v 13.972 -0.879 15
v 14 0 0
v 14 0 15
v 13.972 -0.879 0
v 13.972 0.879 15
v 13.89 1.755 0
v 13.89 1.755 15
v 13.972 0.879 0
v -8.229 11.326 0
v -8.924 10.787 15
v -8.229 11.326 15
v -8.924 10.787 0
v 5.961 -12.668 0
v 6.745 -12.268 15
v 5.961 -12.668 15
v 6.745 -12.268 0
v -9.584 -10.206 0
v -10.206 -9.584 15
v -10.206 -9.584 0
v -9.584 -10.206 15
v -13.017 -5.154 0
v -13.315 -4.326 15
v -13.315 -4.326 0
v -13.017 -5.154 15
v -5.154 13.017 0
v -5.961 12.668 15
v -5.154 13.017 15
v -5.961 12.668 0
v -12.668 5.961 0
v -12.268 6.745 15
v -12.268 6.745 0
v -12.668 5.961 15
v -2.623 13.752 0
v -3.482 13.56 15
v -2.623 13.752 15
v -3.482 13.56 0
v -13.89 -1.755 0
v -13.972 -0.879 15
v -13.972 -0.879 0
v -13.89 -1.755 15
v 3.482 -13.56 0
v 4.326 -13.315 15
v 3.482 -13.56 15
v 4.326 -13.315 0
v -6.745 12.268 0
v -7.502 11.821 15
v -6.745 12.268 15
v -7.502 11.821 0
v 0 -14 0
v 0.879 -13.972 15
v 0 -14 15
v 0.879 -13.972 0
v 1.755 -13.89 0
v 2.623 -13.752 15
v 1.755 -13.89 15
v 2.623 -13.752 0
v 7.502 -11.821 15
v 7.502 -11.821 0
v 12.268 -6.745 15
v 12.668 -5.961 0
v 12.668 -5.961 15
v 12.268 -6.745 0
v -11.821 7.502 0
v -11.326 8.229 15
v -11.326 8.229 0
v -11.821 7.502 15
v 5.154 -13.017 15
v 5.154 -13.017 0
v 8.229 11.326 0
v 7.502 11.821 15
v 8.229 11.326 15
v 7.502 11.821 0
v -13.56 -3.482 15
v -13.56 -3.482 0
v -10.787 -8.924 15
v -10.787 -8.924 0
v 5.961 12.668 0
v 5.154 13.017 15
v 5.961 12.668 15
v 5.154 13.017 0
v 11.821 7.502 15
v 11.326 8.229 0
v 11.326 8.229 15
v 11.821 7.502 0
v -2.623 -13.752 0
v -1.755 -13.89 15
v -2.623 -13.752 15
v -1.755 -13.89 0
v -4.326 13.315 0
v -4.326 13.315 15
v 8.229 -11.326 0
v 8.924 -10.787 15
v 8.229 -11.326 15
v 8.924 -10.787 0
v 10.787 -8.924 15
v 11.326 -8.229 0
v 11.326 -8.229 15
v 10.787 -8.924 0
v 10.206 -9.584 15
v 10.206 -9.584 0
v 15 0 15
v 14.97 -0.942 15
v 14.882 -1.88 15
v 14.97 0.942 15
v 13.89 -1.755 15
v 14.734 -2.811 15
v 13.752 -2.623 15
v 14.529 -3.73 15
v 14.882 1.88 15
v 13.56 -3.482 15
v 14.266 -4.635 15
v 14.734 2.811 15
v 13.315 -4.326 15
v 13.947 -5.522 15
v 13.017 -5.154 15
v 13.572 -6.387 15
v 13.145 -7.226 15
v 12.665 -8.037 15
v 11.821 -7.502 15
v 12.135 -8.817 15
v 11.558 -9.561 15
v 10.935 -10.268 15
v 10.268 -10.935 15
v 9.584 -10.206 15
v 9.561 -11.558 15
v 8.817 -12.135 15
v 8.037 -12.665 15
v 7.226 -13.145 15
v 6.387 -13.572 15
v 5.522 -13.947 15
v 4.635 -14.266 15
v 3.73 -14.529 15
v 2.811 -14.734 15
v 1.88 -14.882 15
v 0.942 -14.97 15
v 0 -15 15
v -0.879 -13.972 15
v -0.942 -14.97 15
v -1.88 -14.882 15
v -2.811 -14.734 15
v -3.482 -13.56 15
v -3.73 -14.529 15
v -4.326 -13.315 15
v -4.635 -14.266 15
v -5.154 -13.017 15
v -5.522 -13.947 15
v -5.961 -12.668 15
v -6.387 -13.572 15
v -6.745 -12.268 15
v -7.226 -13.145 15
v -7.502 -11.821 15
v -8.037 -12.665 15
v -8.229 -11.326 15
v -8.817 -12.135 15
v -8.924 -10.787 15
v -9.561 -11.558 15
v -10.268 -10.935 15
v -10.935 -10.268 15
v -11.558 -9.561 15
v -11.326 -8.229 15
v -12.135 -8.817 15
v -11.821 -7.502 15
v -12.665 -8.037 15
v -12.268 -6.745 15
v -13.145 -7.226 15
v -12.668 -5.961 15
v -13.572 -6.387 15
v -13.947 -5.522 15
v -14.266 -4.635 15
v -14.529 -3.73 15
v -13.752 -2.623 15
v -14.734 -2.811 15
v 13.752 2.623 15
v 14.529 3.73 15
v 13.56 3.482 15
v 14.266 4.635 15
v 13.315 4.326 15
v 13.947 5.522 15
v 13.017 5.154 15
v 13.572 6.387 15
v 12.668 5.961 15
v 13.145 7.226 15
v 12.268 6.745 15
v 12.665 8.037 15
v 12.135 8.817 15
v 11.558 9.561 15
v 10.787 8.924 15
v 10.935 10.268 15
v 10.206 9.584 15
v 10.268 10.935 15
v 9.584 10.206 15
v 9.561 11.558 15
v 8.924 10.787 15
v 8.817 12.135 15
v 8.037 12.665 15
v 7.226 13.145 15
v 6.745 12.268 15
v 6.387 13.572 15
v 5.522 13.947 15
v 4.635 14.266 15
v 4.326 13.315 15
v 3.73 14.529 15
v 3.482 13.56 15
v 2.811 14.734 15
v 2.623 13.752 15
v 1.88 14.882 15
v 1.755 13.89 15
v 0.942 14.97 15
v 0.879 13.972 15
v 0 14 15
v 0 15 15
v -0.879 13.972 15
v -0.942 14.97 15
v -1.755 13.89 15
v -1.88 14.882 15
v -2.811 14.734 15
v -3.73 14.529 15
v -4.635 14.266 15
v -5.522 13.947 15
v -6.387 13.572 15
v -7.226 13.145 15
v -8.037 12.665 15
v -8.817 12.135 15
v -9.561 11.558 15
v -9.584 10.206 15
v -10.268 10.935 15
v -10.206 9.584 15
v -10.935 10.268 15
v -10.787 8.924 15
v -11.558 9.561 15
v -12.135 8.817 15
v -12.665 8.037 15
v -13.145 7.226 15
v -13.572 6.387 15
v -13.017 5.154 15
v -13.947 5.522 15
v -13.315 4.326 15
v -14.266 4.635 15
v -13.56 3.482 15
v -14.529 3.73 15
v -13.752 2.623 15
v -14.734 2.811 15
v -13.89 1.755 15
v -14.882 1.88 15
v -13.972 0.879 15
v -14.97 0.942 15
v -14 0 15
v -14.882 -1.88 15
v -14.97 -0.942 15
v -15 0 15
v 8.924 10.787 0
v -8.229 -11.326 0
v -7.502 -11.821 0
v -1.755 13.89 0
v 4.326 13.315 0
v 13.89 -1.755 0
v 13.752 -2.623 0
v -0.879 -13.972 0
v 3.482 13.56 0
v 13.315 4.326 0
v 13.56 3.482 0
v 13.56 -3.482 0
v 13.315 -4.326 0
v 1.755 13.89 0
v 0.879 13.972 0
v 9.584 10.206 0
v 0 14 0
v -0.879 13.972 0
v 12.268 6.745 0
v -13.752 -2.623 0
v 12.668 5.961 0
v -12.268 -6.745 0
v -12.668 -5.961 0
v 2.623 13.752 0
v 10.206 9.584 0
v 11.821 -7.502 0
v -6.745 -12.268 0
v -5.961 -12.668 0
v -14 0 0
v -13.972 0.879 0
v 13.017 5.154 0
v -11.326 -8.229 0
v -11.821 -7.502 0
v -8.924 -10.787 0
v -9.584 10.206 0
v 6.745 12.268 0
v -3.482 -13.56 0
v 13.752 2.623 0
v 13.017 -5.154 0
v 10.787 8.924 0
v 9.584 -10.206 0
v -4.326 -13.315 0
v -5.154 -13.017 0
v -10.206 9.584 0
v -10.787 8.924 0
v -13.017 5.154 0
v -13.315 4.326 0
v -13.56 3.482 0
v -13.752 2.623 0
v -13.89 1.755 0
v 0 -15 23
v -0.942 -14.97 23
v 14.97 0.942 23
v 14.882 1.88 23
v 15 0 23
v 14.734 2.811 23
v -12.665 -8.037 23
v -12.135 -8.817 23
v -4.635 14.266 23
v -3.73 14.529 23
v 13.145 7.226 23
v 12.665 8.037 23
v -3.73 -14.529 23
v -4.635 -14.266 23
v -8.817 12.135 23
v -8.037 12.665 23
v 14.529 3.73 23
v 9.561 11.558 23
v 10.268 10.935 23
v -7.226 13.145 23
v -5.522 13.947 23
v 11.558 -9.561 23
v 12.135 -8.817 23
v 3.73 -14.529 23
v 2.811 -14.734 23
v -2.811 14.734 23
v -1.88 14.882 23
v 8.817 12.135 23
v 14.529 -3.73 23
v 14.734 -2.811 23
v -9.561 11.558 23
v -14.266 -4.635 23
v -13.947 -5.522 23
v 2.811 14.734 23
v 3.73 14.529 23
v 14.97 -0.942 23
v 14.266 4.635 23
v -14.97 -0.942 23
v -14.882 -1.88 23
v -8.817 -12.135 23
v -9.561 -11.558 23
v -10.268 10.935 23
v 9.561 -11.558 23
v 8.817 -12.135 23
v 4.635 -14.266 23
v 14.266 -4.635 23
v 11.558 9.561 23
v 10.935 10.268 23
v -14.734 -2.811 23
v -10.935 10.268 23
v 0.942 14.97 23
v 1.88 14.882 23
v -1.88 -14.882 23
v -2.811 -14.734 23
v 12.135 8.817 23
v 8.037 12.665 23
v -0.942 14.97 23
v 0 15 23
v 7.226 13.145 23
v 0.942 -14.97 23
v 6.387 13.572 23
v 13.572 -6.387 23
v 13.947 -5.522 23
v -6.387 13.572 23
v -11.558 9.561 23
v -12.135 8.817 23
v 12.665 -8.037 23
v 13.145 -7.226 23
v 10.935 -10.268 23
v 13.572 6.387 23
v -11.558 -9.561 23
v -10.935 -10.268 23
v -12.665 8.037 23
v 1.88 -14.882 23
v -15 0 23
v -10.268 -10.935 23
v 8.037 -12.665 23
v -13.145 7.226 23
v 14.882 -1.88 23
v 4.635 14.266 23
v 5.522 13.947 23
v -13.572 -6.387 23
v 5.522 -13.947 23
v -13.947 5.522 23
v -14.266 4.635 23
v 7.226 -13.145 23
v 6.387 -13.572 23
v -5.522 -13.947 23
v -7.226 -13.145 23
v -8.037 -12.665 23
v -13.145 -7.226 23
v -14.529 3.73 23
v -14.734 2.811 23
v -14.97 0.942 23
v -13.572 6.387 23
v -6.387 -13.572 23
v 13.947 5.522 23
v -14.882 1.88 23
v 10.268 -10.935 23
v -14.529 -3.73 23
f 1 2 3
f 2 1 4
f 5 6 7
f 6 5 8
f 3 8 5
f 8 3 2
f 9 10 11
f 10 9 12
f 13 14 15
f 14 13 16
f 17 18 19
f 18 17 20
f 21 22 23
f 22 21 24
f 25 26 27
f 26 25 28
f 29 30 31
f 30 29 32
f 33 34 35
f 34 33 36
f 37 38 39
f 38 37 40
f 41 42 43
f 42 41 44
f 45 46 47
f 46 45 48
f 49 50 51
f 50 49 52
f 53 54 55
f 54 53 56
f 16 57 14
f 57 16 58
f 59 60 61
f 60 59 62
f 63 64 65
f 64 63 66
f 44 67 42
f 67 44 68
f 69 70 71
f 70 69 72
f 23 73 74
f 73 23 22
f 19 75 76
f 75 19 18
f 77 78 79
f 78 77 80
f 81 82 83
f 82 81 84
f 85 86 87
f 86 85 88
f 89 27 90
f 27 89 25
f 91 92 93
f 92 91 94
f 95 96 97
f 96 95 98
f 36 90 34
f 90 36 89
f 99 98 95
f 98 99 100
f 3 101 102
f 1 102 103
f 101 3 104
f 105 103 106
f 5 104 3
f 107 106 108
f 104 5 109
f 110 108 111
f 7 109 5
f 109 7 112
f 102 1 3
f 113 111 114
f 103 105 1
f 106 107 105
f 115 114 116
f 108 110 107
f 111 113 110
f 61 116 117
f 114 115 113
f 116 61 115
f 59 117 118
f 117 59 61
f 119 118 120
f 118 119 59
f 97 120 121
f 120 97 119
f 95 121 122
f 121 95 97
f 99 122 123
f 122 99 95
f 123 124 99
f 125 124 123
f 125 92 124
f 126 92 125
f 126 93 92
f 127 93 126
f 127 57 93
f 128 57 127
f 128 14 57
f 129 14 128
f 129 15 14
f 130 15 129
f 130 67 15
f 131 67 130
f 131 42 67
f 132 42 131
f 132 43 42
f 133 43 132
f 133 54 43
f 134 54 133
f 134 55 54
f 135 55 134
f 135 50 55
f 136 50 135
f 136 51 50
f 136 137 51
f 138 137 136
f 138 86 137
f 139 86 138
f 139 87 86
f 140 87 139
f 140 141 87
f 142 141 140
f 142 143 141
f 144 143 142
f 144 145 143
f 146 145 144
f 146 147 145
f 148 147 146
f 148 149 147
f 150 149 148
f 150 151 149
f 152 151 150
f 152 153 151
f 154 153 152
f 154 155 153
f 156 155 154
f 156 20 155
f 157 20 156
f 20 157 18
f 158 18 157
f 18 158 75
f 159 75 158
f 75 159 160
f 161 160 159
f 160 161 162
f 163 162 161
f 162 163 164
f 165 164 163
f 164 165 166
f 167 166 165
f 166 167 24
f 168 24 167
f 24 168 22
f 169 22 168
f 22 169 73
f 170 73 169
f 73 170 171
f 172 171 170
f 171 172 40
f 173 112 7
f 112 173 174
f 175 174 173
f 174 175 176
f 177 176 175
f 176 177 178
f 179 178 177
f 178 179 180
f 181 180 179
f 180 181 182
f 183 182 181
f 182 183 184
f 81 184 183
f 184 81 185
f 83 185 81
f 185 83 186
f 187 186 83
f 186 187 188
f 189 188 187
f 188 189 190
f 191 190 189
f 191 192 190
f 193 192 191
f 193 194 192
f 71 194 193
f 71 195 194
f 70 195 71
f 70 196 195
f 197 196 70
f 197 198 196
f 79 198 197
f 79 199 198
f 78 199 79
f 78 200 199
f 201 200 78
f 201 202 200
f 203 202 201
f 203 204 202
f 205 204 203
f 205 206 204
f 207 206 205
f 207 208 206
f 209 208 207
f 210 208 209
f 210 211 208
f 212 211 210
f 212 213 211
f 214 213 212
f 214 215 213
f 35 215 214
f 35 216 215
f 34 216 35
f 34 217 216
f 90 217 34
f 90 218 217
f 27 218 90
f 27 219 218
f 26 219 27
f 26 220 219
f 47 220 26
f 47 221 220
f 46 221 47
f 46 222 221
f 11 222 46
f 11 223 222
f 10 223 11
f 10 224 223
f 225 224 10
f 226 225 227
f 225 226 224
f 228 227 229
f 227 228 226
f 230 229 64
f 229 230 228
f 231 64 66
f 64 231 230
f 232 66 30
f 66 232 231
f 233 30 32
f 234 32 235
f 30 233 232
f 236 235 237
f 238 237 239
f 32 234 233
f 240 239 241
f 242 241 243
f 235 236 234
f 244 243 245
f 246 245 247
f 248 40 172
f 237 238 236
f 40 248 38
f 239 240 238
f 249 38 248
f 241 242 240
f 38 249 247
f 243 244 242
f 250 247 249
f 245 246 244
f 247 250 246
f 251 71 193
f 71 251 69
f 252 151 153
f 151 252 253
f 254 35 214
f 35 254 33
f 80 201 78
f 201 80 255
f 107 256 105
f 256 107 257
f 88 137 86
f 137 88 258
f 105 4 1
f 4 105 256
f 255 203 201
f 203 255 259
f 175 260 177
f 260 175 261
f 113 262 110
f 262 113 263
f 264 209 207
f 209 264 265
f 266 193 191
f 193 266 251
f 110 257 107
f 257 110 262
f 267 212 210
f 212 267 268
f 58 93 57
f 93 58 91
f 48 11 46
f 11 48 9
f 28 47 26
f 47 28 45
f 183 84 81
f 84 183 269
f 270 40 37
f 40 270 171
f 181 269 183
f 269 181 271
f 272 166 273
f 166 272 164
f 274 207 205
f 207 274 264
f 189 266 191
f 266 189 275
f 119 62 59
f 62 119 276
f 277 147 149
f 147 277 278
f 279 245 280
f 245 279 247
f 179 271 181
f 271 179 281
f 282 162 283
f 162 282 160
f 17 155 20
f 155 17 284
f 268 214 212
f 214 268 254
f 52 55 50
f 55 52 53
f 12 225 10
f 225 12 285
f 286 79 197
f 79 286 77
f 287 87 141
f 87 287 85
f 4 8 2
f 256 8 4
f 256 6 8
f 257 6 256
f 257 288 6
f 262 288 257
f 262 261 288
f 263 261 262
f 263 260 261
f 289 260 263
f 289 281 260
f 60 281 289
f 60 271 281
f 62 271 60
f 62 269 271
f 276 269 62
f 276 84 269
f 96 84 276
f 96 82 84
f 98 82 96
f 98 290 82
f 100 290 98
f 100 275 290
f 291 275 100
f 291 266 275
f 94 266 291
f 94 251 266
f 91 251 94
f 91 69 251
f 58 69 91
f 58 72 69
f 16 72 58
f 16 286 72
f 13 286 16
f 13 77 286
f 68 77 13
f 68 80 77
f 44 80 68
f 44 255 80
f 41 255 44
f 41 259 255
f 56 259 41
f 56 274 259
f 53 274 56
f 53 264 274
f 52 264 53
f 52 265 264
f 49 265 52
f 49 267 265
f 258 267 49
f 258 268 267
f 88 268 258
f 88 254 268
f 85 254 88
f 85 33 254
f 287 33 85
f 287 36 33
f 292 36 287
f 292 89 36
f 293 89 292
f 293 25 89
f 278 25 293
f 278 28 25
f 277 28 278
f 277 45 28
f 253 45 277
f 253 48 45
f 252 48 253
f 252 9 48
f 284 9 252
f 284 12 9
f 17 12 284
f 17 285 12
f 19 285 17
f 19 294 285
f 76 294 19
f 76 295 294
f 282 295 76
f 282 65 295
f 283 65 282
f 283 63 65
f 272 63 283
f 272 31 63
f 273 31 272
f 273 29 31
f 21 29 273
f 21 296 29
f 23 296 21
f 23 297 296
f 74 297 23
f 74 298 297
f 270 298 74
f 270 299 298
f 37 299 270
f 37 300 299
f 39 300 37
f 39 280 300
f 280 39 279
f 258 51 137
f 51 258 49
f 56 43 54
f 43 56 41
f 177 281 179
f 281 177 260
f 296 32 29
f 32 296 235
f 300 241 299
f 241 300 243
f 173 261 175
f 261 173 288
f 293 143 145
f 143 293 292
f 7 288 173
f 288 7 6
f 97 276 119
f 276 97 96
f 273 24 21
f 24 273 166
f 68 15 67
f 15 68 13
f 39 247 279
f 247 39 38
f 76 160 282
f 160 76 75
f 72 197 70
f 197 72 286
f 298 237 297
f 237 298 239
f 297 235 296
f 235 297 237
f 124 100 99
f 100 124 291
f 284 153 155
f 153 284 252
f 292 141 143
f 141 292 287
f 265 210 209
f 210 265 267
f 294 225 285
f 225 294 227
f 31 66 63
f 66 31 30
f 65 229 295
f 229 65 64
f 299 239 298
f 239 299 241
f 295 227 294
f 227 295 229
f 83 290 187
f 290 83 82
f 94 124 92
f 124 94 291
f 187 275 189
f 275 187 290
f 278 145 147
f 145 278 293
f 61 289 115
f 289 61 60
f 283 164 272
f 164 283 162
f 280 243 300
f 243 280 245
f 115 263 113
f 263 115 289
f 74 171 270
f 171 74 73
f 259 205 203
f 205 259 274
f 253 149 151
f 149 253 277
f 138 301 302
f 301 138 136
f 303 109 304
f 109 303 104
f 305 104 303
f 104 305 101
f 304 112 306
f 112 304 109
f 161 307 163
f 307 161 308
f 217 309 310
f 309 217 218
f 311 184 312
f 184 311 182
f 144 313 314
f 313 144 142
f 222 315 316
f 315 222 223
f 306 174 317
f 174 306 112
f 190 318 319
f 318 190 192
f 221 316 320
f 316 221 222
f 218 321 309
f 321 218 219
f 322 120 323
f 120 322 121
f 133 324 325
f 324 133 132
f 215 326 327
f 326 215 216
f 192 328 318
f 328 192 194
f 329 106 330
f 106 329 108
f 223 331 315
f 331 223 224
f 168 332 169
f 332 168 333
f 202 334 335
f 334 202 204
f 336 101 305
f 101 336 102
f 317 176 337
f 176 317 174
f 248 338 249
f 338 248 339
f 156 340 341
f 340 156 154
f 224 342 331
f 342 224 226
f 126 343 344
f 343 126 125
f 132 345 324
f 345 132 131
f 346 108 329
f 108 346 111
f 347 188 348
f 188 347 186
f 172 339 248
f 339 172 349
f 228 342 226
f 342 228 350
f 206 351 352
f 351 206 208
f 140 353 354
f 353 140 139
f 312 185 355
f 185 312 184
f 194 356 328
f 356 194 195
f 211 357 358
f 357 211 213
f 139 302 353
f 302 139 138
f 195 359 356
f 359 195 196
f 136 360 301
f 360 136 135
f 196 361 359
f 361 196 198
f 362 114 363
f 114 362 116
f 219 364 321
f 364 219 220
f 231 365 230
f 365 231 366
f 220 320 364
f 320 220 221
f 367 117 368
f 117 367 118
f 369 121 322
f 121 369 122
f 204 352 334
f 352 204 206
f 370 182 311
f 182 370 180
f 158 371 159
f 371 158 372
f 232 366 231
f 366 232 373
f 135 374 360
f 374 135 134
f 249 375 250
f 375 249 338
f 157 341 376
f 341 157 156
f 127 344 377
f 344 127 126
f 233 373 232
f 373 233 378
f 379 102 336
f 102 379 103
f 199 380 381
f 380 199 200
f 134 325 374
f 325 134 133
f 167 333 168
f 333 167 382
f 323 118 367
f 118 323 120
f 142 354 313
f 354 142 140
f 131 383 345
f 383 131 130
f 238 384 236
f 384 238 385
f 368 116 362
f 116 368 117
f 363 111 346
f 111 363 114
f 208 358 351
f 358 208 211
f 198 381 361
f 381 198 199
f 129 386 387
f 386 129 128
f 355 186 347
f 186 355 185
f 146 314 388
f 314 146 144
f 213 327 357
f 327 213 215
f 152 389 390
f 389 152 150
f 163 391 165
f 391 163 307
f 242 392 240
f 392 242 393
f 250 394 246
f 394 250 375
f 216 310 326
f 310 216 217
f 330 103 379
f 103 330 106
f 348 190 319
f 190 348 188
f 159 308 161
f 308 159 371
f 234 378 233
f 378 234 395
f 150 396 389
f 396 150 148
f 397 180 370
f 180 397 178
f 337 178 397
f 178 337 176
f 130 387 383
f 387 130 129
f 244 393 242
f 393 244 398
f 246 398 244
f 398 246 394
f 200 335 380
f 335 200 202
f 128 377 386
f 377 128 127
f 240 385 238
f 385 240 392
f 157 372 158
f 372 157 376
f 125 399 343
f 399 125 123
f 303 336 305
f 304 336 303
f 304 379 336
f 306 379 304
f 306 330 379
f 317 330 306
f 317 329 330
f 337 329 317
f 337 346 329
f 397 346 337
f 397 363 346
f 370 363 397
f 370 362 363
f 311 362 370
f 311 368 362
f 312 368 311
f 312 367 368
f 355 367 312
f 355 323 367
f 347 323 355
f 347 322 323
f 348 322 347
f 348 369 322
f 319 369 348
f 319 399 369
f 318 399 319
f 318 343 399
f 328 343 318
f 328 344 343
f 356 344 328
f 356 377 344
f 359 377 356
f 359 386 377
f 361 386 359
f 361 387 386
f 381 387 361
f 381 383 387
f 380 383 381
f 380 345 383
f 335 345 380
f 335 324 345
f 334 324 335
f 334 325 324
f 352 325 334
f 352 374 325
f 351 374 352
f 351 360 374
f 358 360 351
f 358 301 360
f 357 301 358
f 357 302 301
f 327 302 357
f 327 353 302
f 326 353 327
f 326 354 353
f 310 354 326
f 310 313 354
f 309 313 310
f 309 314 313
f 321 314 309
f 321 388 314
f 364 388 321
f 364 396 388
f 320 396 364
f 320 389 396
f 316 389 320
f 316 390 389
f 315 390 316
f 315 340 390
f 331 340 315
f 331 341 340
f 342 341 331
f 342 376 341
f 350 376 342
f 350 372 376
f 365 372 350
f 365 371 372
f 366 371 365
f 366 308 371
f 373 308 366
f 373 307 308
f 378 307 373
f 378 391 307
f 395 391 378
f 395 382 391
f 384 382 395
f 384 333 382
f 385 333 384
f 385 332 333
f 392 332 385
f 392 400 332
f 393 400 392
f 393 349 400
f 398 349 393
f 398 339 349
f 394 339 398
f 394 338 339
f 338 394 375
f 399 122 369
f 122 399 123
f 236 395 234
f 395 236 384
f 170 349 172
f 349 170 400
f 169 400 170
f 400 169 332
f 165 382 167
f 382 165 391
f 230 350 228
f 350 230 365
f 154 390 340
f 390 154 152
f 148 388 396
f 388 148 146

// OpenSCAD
LOWER_DIAMETER = 28;
LOWER_HEIGHT = 15;

UPPER_DIAMETER = 30;
UPPER_HEIGHT = 8;

$fn = 100;

union() {
    cylinder(h = LOWER_HEIGHT, d = LOWER_DIAMETER);
    
    translate([0, 0, LOWER_HEIGHT])
    cylinder(h = UPPER_HEIGHT, d = UPPER_DIAMETER);
}
